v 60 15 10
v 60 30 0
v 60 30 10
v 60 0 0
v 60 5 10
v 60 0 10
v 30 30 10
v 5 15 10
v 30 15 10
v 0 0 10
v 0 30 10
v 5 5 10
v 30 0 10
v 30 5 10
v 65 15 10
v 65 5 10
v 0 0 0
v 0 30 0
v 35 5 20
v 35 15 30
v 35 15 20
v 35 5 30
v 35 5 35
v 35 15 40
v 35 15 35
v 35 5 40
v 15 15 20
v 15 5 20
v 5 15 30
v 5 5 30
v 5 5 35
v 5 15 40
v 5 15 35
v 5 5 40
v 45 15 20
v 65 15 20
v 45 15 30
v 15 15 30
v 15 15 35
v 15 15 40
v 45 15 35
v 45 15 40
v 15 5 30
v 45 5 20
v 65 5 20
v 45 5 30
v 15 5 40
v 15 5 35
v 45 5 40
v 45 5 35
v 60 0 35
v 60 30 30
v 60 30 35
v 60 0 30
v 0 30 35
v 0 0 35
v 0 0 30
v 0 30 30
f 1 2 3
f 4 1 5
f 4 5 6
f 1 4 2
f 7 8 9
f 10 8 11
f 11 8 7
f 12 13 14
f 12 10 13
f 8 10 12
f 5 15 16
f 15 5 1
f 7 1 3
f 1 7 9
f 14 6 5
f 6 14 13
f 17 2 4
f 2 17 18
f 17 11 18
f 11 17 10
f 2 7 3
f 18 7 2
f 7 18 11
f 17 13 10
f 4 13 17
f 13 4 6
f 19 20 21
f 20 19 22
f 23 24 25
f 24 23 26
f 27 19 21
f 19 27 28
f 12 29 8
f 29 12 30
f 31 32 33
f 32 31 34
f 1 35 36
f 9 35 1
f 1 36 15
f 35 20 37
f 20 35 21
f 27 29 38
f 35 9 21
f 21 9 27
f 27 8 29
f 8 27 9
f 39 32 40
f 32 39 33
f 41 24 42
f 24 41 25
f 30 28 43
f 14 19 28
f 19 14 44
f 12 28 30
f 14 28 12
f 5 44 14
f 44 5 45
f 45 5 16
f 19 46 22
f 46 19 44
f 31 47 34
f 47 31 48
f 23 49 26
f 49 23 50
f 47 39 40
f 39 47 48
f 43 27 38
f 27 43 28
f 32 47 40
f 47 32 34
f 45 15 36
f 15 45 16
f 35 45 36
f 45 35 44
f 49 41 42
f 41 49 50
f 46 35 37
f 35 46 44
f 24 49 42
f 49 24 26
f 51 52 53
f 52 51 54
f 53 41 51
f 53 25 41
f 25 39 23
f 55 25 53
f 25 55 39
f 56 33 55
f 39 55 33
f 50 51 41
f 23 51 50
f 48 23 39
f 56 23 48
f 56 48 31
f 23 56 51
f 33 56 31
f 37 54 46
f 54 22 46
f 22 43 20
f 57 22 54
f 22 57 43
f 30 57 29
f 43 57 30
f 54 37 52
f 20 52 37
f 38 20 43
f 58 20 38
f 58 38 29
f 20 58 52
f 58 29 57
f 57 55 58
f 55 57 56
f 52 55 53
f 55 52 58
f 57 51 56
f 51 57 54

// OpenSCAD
// Base Block
module base_block() {
    difference() {
        cube([60, 30, 10]); // Main block
        translate([0, 0, 10]) cube([30, 30, 10]); // Stepped cutout
    }
}

// L-Shaped Connector
module l_shaped_connector() {
    union() {
        cube([30, 10, 10]); // Horizontal base
        translate([0, 0, 10]) cube([10, 10, 20]); // Vertical extension
    }
}

// Flat Rectangular Block
module flat_rectangular_block() {
    cube([60, 30, 5]); // Flat block
}

// Assembly
module assembly() {
    // Layer 3: Base Block
    base_block();

    // Layer 2: L-Shaped Connectors
    translate([5, 5, 10]) l_shaped_connector(); // Left connector
    translate([35, 5, 10]) l_shaped_connector(); // Right connector

    // Layer 1: Flat Rectangular Block
    translate([0, 0, 30]) flat_rectangular_block();
}

// Render the assembly
assembly();
